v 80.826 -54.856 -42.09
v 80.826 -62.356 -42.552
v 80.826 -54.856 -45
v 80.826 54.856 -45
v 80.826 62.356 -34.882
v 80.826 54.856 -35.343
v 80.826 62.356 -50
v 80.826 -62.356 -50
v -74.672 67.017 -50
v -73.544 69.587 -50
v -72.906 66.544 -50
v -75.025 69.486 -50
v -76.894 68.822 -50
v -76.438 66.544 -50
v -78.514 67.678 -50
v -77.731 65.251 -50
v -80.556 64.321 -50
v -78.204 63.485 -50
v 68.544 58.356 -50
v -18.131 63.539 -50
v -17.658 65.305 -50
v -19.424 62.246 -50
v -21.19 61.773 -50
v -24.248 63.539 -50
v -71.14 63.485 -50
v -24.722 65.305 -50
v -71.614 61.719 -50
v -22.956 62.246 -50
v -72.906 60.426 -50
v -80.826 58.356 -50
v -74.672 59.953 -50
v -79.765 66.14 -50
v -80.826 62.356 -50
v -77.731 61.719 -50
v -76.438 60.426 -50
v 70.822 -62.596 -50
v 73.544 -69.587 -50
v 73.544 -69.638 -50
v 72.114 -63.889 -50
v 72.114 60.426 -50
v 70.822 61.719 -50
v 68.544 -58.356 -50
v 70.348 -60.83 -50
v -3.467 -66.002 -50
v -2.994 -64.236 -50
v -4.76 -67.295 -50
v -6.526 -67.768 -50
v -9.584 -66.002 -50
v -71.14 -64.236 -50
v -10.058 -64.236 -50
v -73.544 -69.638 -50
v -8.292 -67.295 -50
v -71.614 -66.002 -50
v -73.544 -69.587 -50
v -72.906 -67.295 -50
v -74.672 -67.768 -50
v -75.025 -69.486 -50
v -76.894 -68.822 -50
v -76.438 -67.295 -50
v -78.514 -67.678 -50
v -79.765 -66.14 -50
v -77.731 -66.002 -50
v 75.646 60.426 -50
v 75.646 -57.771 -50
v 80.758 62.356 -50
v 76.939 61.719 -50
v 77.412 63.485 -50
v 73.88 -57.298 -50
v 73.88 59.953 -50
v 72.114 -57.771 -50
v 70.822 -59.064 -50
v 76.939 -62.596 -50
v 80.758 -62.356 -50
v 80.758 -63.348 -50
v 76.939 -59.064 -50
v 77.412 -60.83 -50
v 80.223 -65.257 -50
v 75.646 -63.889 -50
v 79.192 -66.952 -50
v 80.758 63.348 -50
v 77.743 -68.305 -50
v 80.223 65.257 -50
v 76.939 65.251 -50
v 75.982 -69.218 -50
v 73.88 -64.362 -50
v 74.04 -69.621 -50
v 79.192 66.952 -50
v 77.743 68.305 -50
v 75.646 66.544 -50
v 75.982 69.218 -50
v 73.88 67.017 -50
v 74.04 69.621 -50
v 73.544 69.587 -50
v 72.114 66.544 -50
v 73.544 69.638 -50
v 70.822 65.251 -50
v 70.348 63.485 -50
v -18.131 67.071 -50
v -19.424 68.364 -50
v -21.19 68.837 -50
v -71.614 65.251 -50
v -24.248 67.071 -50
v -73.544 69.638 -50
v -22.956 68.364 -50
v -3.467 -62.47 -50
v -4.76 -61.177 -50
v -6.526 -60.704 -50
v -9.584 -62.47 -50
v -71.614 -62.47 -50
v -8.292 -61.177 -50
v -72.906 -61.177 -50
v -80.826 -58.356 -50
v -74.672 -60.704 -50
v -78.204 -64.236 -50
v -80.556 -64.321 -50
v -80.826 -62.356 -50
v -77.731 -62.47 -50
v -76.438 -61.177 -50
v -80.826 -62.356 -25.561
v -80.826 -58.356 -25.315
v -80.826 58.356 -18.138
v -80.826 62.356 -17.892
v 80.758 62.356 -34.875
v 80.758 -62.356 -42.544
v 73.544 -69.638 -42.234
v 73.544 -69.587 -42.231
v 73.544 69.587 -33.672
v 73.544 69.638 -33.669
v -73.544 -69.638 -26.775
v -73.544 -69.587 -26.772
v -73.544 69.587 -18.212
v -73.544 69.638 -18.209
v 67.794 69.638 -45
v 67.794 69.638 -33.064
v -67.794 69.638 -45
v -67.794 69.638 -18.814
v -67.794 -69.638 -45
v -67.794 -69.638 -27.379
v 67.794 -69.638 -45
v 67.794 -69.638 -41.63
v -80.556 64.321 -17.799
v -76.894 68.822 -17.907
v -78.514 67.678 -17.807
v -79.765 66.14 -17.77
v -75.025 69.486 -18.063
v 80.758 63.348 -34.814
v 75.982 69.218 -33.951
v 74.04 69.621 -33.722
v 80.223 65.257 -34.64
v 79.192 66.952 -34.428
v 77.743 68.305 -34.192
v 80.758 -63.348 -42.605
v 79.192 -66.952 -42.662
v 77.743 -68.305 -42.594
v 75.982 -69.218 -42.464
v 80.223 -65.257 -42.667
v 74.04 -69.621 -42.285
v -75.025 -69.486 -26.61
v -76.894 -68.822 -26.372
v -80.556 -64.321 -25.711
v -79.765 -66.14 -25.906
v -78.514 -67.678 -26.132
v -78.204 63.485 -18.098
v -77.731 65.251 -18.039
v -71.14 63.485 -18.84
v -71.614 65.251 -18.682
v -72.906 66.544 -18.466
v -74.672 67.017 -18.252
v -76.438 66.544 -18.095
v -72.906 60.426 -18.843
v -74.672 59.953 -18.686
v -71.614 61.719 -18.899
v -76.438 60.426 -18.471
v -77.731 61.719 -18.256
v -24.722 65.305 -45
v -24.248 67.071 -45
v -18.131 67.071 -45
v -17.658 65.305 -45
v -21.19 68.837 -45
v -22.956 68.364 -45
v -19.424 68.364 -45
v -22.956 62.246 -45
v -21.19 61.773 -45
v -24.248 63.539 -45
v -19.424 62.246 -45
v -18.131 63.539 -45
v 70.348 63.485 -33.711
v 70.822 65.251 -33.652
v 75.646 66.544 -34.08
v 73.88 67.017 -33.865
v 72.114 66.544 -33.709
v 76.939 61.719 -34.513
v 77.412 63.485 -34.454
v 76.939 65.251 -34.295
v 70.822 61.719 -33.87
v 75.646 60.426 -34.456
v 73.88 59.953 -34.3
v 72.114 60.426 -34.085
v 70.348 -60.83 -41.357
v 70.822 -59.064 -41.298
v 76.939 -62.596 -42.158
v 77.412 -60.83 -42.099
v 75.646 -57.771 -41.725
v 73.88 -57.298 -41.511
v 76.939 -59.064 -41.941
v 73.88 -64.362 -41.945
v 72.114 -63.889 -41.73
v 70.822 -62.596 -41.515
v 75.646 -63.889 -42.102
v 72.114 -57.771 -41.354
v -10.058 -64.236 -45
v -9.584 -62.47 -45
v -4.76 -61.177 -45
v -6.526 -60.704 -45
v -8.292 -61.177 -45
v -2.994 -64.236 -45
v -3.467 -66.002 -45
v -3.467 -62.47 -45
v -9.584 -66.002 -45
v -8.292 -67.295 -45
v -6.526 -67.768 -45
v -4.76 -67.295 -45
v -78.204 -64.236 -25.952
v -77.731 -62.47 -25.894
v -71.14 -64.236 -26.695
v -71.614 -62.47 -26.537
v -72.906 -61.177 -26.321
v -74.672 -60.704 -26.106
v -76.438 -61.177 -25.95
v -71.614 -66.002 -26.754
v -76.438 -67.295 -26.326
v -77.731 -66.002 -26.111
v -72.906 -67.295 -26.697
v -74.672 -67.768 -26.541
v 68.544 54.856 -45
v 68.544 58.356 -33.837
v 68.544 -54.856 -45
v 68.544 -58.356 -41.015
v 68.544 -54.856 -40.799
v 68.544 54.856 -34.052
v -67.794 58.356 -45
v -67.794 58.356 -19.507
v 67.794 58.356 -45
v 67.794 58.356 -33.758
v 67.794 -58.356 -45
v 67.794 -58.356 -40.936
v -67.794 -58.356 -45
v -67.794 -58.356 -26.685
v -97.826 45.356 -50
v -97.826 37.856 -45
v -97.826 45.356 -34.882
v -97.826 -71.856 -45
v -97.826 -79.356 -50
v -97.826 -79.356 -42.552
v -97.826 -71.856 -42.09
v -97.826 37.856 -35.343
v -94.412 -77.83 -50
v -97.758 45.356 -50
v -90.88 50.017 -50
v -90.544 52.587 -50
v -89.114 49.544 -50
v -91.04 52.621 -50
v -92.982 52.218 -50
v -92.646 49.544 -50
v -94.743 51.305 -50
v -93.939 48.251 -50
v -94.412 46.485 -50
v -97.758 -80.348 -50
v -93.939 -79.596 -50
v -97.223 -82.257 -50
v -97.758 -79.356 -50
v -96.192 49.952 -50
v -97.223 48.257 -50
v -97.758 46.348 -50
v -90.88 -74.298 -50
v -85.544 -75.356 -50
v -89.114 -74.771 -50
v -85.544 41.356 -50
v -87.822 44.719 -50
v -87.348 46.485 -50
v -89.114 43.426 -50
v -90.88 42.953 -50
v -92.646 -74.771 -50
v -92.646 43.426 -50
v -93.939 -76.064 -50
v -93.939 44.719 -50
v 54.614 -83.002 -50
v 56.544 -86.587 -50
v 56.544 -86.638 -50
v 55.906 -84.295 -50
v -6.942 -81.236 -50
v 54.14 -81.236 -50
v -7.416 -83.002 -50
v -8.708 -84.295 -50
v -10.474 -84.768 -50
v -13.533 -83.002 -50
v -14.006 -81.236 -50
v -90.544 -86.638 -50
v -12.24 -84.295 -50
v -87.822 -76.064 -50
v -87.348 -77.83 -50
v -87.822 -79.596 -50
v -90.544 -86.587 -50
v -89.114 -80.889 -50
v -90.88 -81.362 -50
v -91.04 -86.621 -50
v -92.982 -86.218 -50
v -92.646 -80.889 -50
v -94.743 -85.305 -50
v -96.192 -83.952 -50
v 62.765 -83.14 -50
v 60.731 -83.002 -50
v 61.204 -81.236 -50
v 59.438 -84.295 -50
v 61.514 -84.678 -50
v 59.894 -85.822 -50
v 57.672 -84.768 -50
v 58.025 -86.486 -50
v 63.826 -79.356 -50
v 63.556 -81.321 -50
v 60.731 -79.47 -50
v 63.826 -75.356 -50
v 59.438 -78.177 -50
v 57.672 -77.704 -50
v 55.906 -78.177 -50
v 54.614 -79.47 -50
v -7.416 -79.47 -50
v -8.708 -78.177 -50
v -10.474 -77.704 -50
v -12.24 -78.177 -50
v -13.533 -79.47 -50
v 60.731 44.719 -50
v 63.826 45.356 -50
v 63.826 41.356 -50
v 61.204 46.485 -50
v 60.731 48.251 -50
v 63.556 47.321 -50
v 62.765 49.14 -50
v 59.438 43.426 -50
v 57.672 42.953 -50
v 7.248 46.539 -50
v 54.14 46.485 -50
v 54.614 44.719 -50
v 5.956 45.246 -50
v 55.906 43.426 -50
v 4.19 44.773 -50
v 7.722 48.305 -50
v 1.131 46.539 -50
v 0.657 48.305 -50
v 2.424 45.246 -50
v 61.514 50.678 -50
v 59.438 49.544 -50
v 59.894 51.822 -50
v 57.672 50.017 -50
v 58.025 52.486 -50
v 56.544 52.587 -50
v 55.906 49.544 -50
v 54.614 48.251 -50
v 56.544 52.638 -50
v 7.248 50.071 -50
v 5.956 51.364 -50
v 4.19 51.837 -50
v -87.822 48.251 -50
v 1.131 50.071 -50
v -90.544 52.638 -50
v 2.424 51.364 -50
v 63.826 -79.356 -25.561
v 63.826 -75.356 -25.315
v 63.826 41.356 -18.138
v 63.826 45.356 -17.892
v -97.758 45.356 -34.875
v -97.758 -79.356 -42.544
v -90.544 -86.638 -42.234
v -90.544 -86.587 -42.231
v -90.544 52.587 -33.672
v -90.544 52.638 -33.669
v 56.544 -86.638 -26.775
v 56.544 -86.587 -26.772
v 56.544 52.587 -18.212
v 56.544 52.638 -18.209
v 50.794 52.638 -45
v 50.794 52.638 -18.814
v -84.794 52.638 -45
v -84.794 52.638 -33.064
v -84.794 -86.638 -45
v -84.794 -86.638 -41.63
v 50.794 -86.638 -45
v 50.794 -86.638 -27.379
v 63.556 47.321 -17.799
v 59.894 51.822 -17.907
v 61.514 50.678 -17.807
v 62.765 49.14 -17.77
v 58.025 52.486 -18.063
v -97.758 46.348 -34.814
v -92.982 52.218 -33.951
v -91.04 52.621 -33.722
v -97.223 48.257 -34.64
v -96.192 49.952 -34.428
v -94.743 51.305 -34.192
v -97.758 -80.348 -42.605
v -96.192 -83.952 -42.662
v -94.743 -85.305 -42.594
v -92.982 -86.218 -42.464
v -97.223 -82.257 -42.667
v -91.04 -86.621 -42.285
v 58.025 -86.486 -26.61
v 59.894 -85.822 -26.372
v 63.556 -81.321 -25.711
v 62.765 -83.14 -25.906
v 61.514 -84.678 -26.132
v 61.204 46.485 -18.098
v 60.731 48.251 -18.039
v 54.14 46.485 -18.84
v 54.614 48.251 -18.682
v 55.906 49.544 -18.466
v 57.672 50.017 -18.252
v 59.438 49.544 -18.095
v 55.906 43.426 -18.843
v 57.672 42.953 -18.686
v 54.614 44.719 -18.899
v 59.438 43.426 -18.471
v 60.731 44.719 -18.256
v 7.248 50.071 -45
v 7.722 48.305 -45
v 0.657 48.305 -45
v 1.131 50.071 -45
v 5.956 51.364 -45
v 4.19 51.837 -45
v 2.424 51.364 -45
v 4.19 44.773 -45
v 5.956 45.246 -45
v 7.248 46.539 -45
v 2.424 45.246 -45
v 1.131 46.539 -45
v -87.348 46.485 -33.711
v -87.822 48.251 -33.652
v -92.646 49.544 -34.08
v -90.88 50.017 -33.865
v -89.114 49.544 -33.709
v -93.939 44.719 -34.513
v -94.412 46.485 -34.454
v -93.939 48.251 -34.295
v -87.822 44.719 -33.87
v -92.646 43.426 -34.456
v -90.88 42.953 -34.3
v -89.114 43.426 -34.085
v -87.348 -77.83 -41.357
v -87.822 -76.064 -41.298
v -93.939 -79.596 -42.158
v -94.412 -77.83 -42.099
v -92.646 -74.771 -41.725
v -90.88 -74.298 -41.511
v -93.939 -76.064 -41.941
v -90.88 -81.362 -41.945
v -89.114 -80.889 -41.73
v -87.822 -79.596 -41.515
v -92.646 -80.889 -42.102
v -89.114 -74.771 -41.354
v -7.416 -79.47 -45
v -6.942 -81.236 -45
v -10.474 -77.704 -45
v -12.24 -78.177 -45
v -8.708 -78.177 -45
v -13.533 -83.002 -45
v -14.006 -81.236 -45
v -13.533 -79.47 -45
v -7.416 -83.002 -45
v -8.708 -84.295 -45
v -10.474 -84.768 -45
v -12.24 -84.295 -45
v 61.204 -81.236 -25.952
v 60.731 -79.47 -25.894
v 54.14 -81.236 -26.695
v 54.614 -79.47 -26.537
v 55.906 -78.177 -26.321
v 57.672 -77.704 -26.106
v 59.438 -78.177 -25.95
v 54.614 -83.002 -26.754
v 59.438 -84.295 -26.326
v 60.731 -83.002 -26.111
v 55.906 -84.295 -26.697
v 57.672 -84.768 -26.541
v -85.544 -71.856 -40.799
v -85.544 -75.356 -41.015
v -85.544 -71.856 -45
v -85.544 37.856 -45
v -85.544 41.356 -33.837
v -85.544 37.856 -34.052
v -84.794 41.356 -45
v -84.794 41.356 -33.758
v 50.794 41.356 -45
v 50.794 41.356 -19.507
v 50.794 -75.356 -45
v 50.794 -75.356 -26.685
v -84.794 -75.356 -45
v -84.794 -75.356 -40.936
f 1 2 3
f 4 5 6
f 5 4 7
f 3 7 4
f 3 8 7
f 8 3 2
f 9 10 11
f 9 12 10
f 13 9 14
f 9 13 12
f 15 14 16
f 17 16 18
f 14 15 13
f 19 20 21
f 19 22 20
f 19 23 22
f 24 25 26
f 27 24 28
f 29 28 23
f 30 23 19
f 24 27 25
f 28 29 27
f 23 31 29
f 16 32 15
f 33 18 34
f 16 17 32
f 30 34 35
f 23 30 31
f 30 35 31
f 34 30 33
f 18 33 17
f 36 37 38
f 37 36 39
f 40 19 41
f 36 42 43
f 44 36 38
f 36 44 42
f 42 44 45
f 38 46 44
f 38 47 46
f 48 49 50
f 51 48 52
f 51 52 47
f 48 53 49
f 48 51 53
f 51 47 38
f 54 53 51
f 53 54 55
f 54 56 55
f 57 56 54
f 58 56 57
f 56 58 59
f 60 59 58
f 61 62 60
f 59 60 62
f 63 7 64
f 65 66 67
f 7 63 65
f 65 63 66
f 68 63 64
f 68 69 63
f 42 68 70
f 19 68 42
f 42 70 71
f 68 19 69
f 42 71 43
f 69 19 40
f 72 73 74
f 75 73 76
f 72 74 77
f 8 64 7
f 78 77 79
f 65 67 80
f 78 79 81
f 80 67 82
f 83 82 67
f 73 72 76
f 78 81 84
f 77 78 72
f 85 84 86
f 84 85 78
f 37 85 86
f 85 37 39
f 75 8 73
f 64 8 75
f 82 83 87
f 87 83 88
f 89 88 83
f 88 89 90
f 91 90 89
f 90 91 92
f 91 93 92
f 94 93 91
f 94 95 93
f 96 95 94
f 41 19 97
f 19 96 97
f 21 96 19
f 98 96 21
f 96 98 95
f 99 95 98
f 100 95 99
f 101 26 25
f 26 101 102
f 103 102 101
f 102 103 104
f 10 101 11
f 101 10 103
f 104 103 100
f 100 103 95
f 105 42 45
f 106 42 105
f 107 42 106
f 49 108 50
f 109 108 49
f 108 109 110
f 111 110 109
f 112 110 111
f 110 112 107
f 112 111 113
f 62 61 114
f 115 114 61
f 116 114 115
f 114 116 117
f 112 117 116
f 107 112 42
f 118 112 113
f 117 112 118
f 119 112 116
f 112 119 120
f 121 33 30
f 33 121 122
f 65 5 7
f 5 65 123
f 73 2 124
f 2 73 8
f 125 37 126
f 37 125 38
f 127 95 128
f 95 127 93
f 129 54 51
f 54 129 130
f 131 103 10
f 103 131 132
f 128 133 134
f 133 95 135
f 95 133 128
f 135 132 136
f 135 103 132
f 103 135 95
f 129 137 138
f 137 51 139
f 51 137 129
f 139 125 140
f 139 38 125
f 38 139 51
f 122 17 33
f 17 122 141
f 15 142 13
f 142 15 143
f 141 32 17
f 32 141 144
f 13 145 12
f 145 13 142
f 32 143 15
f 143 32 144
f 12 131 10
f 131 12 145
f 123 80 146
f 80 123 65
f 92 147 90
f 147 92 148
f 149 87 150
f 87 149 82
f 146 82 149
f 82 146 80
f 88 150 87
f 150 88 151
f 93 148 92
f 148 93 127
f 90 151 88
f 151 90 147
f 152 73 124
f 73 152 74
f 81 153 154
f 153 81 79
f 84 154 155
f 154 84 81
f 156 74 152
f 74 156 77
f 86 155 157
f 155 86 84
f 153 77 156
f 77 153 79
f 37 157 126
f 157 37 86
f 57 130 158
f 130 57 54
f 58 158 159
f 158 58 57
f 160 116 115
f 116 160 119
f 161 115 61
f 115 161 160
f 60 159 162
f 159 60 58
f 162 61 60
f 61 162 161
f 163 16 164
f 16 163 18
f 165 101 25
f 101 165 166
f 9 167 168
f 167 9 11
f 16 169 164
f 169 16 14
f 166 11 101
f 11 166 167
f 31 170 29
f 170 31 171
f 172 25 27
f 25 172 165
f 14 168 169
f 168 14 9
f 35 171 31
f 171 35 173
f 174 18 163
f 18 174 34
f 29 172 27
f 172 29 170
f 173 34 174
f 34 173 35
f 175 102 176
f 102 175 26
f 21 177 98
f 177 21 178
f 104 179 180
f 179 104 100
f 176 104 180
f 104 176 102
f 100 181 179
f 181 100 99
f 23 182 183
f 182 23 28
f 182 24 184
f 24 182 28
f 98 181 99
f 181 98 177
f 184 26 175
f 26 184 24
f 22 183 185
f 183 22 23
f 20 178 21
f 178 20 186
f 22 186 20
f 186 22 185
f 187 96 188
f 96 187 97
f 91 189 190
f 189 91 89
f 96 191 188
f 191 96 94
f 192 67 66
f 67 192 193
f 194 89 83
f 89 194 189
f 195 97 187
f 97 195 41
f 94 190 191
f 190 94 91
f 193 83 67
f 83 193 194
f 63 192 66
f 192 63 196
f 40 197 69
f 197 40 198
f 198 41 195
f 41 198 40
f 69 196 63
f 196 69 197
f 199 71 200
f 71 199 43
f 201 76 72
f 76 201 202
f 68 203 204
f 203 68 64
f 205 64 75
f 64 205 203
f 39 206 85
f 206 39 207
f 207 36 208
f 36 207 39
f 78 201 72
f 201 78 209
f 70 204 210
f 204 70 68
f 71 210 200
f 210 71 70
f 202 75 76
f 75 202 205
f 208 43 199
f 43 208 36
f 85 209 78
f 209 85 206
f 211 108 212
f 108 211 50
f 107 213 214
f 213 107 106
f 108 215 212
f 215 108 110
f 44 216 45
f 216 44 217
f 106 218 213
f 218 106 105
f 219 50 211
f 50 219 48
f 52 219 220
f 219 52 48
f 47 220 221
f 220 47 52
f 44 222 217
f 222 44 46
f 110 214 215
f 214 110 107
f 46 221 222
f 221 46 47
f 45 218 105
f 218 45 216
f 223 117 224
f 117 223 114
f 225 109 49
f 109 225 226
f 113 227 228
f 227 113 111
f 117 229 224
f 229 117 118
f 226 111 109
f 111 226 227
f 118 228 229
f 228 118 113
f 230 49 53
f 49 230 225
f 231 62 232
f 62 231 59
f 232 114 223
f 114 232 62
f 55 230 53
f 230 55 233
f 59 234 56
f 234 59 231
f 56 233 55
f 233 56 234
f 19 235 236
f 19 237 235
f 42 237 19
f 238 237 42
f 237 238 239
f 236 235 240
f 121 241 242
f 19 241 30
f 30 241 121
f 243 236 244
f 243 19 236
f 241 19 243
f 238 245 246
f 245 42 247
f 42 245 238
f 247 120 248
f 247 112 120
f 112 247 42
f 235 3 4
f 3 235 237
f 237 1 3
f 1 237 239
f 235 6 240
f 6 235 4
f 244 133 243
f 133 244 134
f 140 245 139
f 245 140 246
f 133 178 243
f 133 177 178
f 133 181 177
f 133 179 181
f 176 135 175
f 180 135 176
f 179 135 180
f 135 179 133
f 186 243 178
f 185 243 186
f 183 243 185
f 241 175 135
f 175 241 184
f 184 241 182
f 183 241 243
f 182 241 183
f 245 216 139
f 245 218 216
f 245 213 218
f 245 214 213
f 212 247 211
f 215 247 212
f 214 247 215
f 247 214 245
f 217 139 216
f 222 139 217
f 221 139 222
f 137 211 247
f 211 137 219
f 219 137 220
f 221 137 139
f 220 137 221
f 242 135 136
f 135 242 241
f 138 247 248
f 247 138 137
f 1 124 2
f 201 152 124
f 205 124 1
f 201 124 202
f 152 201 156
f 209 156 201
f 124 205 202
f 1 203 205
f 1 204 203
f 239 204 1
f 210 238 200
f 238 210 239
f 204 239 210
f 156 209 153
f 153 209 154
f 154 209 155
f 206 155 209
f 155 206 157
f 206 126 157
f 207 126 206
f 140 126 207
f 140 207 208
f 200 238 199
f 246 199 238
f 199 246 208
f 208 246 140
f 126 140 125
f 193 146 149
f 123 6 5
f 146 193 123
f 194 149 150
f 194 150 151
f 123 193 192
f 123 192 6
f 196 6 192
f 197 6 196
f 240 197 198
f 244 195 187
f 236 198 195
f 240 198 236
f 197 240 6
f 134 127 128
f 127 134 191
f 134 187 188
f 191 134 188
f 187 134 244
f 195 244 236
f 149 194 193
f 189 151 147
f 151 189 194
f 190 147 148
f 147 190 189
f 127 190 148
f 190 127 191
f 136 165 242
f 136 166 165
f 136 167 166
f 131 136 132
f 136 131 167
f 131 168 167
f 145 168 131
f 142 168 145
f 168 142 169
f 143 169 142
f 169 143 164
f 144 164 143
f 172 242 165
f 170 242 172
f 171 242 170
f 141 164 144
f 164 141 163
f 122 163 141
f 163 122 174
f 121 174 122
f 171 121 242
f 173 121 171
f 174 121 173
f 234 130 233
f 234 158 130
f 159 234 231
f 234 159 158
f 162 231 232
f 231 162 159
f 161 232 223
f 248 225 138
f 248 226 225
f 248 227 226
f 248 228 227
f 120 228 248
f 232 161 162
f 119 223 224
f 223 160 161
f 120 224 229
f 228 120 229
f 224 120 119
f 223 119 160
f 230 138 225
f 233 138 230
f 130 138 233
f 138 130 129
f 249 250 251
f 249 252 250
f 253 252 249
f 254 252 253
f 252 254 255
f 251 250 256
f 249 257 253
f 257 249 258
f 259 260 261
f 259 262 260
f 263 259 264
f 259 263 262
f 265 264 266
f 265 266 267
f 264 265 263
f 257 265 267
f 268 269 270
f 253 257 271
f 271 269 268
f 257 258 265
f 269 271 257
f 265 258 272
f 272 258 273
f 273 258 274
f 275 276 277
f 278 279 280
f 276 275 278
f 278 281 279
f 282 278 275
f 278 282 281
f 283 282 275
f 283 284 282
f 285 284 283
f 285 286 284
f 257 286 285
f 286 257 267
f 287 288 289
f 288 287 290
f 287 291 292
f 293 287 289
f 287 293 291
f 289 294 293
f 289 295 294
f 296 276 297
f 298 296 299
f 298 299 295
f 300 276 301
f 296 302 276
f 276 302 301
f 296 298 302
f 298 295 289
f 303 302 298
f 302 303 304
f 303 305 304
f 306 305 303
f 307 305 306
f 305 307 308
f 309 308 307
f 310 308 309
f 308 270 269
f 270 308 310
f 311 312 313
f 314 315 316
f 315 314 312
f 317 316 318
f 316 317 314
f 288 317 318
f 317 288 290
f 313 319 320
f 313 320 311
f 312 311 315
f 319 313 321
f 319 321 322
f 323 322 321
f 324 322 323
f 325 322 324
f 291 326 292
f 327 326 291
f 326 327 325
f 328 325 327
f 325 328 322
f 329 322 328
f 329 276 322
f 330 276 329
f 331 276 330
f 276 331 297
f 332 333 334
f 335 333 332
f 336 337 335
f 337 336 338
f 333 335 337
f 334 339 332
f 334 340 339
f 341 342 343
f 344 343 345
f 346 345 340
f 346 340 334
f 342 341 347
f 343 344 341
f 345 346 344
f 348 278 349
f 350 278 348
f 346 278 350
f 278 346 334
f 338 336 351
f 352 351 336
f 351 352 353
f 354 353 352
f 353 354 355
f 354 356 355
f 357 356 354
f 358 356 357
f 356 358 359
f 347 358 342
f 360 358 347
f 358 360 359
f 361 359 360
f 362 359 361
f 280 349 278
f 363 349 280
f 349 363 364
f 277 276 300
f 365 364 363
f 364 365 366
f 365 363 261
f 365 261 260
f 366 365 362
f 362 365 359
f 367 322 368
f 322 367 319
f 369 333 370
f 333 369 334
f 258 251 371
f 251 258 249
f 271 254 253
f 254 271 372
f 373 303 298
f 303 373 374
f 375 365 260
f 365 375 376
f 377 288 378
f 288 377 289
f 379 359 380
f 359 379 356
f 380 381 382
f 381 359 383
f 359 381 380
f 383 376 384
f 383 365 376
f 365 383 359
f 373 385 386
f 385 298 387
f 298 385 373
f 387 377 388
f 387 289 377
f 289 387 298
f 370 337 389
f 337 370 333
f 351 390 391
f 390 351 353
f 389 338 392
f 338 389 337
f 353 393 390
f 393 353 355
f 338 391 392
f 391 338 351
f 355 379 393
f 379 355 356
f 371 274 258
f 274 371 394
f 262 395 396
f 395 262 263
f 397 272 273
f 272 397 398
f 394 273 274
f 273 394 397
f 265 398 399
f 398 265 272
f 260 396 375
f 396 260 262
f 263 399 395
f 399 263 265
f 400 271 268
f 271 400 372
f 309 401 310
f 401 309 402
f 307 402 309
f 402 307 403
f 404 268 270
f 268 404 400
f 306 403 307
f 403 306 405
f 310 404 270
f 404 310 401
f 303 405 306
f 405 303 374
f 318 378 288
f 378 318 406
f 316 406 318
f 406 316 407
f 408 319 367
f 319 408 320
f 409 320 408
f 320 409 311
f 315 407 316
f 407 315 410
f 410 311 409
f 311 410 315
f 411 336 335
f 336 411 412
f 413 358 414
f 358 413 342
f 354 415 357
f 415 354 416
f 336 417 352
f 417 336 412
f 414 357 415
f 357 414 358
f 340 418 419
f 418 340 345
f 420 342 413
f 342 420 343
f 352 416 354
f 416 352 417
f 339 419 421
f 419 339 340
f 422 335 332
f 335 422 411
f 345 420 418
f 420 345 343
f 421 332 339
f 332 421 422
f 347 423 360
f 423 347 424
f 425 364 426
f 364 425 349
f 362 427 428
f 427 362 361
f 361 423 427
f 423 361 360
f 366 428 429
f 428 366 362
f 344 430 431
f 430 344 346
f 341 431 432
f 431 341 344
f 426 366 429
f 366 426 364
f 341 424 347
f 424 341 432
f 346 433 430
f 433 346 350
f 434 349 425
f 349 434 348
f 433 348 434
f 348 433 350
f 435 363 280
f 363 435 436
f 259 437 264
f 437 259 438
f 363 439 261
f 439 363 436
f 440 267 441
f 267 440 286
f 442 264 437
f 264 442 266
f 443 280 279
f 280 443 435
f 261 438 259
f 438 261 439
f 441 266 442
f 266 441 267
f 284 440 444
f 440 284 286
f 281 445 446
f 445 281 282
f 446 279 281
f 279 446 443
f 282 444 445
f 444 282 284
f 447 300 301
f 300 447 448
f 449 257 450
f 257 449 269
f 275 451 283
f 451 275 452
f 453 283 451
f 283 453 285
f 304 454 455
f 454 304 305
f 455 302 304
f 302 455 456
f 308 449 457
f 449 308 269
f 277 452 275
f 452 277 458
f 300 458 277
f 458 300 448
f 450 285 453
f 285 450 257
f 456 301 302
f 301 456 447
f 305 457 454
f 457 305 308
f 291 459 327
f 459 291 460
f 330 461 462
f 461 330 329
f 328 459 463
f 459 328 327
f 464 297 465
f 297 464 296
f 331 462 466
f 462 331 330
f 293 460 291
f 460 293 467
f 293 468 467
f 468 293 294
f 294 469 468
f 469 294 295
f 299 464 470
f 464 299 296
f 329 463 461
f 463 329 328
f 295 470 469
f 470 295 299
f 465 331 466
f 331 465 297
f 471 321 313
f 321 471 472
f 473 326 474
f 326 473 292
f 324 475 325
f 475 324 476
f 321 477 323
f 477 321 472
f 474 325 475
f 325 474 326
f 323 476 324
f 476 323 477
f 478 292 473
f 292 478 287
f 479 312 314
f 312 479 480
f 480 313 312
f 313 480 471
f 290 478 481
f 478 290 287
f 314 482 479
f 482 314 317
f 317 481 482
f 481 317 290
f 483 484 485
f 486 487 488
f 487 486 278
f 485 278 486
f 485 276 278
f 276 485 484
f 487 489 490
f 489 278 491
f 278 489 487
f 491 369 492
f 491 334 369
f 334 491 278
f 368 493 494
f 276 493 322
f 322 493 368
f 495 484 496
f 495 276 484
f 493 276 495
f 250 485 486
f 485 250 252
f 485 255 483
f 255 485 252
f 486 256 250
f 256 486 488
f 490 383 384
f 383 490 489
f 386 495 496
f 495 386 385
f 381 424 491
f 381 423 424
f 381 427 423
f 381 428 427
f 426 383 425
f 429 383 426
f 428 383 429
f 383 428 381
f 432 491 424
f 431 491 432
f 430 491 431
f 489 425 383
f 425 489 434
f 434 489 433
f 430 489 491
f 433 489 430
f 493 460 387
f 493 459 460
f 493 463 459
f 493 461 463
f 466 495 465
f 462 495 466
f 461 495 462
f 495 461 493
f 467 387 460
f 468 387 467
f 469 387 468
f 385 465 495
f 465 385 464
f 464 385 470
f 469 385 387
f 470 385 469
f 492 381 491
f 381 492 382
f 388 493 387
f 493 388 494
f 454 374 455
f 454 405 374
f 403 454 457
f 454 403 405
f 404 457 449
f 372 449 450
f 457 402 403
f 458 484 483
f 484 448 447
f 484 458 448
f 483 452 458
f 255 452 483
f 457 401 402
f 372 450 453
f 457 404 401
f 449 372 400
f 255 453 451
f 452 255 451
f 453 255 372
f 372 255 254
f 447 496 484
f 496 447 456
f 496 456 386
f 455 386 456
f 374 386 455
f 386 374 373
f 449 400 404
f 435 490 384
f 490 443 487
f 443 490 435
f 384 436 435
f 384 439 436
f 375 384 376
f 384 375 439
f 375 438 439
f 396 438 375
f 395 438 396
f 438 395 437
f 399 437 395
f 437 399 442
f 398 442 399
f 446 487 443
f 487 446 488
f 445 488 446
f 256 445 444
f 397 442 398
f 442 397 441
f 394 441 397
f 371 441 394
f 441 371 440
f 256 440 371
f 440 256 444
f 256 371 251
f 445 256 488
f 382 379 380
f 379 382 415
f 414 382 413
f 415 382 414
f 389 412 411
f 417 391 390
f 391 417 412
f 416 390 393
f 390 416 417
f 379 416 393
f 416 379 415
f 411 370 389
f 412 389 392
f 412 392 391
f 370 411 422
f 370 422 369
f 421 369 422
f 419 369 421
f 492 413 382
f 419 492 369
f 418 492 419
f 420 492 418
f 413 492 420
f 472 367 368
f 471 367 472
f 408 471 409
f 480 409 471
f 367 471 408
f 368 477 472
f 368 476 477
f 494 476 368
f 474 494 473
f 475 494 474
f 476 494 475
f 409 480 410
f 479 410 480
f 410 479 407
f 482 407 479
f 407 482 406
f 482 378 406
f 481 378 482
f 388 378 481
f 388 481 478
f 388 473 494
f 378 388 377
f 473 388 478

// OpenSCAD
union () {
  rotate (a=180.0, v=[0,1,0]) {
    rotate (a=6.0, v=[0,1,0]) {
      rotate (a=-3.5, v=[1,0,0]) {
        difference () {
          rotate (a=3.5, v=[1,0,0]) {
            rotate (a=-6.0, v=[0,1,0]) {
              difference () {
                translate ([0,0,25]) {
                  union () {
                    cube([161.65099999999998, 124.712, 50], center=true);
                    cube([147.087, 139.276, 50], center=true);
                    translate ([73.5435,62.356,0]) {
                      cylinder (h=50, r=7.282, center=true);
                    }
                    translate ([-73.5435,62.356,0]) {
                      cylinder (h=50, r=7.282, center=true);
                    }
                    translate ([-73.5435,-62.356,0]) {
                      cylinder (h=50, r=7.282, center=true);
                    }
                    translate ([73.5435,-62.356,0]) {
                      cylinder (h=50, r=7.282, center=true);
                    }
                  }
                }
                translate ([74.6725,63.485,0]) {
                  cylinder (h=250, r=3.532, center=true);
                }
                translate ([21.189500000000002,65.30499999999999,0]) {
                  cylinder (h=250, r=3.532, center=true);
                }
                translate ([-73.8805,63.485,0]) {
                  cylinder (h=250, r=3.532, center=true);
                }
                translate ([-73.8805,-60.83,0]) {
                  cylinder (h=250, r=3.532, center=true);
                }
                translate ([6.525499999999994,-64.236,0]) {
                  cylinder (h=250, r=3.532, center=true);
                }
                translate ([74.6725,-64.236,0]) {
                  cylinder (h=250, r=3.532, center=true);
                }
                translate ([-73.8805,-138.12599999999998,0]) {
                  cylinder (h=250, r=3.532, center=true);
                }
                translate ([72.7965,-138.51799999999997,0]) {
                  cylinder (h=250, r=3.532, center=true);
                }
                translate ([10,0,25]) {
                  cube([157.087, 116.712, 60], center=true);
                }
                translate ([0,0,15]) {
                  cube([166.65099999999998, 109.712, 60], center=true);
                }
                translate ([0,0,15]) {
                  cube([135.587, 144.276, 60], center=true);
                }
              }
            }
          }
          translate ([0,0,-20]) {
            cube([1000, 1000, 100], center=true);
          }
        }
      }
    }
  }
  translate ([-17,-17,0]) {
    mirror ([1,0,0]) {
      rotate (a=180.0, v=[0,1,0]) {
        rotate (a=6.0, v=[0,1,0]) {
          rotate (a=-3.5, v=[1,0,0]) {
            difference () {
              rotate (a=3.5, v=[1,0,0]) {
                rotate (a=-6.0, v=[0,1,0]) {
                  difference () {
                    translate ([0,0,25]) {
                      union () {
                        cube([161.65099999999998, 124.712, 50], center=true);
                        cube([147.087, 139.276, 50], center=true);
                        translate ([73.5435,62.356,0]) {
                          cylinder (h=50, r=7.282, center=true);
                        }
                        translate ([-73.5435,62.356,0]) {
                          cylinder (h=50, r=7.282, center=true);
                        }
                        translate ([-73.5435,-62.356,0]) {
                          cylinder (h=50, r=7.282, center=true);
                        }
                        translate ([73.5435,-62.356,0]) {
                          cylinder (h=50, r=7.282, center=true);
                        }
                      }
                    }
                    translate ([74.6725,63.485,0]) {
                      cylinder (h=250, r=3.532, center=true);
                    }
                    translate ([21.189500000000002,65.30499999999999,0]) {
                      cylinder (h=250, r=3.532, center=true);
                    }
                    translate ([-73.8805,63.485,0]) {
                      cylinder (h=250, r=3.532, center=true);
                    }
                    translate ([-73.8805,-60.83,0]) {
                      cylinder (h=250, r=3.532, center=true);
                    }
                    translate ([6.525499999999994,-64.236,0]) {
                      cylinder (h=250, r=3.532, center=true);
                    }
                    translate ([74.6725,-64.236,0]) {
                      cylinder (h=250, r=3.532, center=true);
                    }
                    translate ([-73.8805,-138.12599999999998,0]) {
                      cylinder (h=250, r=3.532, center=true);
                    }
                    translate ([72.7965,-138.51799999999997,0]) {
                      cylinder (h=250, r=3.532, center=true);
                    }
                    translate ([10,0,25]) {
                      cube([157.087, 116.712, 60], center=true);
                    }
                    translate ([0,0,15]) {
                      cube([166.65099999999998, 109.712, 60], center=true);
                    }
                    translate ([0,0,15]) {
                      cube([135.587, 144.276, 60], center=true);
                    }
                  }
                }
              }
              translate ([0,0,-20]) {
                cube([1000, 1000, 100], center=true);
              }
            }
          }
        }
      }
    }
  }
}
